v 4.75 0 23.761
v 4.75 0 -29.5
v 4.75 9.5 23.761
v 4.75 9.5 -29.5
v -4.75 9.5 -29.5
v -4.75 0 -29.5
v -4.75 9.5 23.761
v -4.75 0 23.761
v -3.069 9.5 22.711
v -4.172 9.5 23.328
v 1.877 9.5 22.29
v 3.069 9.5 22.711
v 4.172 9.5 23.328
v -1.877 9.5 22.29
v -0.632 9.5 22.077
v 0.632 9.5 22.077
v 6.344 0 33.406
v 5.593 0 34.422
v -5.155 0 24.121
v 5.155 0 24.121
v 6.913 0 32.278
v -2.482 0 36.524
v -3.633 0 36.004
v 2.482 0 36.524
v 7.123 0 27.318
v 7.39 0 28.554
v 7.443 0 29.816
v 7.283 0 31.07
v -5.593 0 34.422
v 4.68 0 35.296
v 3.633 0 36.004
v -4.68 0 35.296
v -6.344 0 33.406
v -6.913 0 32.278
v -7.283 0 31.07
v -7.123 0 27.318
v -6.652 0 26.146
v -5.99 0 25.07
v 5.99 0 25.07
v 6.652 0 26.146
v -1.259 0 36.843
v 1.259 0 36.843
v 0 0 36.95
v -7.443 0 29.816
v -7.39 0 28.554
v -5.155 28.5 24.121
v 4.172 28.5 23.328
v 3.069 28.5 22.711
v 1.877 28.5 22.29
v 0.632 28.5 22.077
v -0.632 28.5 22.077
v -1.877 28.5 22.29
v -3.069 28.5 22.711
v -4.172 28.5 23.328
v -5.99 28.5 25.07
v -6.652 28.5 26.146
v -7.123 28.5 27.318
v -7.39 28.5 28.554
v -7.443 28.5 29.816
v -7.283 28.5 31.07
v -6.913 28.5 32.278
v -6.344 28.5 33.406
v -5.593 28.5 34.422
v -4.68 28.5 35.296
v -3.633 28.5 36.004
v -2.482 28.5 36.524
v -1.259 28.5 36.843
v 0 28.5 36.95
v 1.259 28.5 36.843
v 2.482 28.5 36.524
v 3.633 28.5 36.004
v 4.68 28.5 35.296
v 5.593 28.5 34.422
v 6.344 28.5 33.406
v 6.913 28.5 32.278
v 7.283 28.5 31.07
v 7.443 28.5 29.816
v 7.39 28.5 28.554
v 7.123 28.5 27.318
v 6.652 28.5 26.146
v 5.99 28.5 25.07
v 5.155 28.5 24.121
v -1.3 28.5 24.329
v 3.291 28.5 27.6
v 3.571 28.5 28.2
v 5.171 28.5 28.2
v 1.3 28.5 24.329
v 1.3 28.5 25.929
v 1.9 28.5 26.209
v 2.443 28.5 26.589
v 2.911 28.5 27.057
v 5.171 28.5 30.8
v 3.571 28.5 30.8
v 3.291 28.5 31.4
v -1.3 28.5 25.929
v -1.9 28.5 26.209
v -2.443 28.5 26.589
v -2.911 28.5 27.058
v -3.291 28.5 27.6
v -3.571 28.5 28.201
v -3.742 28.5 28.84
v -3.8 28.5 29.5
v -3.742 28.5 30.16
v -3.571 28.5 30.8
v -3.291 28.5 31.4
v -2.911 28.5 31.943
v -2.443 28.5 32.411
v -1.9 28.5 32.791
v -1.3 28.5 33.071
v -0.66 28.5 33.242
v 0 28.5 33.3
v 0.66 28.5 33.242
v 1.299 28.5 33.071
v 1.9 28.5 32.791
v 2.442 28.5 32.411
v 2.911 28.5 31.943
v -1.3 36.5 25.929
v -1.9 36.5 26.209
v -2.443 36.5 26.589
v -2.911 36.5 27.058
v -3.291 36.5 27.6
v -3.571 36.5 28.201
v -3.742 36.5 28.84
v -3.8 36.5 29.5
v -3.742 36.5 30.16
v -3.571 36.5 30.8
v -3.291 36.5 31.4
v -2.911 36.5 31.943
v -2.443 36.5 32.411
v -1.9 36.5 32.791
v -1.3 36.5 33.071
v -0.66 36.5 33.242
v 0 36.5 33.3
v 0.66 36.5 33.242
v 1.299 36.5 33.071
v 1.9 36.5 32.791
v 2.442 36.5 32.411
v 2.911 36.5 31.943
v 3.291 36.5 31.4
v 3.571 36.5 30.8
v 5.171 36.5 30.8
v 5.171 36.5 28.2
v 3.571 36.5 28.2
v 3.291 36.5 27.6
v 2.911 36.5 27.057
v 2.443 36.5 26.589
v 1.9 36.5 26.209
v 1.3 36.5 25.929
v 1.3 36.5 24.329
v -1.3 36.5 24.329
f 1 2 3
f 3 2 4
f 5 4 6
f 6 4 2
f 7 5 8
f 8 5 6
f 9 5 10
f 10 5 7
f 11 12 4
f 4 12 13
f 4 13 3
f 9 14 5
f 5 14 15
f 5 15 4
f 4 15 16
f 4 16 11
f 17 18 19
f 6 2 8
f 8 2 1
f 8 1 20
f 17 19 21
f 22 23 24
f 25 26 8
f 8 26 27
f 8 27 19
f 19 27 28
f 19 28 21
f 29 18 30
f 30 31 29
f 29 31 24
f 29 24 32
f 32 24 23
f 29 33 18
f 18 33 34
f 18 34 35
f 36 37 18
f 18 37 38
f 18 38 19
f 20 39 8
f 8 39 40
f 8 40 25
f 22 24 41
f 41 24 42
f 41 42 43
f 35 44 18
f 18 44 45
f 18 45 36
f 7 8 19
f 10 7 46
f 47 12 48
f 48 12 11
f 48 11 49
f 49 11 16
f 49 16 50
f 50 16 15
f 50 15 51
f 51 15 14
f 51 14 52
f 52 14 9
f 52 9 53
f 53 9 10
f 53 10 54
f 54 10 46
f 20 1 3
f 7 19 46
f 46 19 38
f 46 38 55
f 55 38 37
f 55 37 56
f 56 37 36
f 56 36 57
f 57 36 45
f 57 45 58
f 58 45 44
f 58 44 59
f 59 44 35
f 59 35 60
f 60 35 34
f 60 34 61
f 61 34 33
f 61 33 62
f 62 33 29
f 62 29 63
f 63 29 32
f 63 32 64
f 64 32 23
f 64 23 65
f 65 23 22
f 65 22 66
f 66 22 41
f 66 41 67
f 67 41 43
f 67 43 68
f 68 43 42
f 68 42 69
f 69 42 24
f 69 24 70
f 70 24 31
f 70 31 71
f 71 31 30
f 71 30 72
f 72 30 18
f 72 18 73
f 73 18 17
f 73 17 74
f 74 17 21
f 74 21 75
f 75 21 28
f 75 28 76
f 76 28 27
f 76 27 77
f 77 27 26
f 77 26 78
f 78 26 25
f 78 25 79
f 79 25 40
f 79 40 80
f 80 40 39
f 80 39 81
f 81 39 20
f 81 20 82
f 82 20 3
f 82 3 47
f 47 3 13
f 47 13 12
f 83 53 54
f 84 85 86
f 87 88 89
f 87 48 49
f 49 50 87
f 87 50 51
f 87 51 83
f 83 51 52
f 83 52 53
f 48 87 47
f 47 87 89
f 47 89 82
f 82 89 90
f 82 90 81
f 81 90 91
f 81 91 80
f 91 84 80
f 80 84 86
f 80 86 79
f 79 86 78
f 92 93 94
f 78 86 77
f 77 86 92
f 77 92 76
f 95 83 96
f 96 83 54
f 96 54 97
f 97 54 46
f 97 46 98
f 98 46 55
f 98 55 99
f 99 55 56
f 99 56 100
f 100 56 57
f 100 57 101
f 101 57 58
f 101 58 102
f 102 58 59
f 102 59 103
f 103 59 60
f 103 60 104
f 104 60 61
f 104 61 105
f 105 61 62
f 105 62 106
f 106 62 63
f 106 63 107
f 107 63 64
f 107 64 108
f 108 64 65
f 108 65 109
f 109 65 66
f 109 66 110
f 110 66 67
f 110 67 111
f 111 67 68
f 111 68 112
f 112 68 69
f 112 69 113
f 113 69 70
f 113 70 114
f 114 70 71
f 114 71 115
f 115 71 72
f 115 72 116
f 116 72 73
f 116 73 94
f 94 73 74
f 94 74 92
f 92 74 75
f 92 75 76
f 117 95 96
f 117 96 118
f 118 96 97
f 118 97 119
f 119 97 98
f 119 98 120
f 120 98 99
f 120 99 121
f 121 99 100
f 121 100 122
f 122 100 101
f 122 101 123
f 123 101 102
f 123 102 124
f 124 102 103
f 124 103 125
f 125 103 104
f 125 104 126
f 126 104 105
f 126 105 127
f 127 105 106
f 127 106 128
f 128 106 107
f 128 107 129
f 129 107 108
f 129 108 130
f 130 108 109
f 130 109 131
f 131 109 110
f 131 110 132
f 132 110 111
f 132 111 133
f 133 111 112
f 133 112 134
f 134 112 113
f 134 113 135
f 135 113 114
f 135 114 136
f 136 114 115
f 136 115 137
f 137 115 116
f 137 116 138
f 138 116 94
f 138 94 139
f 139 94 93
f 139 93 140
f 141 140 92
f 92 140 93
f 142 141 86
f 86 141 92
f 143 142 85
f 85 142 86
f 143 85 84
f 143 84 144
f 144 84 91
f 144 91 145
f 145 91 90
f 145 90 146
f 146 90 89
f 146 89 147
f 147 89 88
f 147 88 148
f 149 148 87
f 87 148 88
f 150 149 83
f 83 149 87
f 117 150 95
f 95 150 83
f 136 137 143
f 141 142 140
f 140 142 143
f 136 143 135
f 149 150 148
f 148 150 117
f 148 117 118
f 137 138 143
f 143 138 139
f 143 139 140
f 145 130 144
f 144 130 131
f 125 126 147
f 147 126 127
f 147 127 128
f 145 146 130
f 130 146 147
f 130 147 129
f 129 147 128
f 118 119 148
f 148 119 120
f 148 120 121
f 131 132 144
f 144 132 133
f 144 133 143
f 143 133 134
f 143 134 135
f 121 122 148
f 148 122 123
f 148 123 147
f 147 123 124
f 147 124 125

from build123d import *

# Parameters (mm, degrees)
SKETCH1_W                = 9.5
SKETCH1_H                = 59
BOSS_EXTRUDE1_DEPTH      = 9.5
SKETCH2_R                = 7.45
BOSS_EXTRUDE2_DEPTH      = 19
BOSS_EXTRUDE2_DEPTH_BACK = 9.5
BOSS_EXTRUDE3_DEPTH      = 8


with BuildPart() as part:
    # Sketch1 → Boss-Extrude1 (new body)
    with BuildSketch(Plane(origin=(0, 0, 0), x_dir=(1, 0, 0), z_dir=(0, 1, 0))):
        Rectangle(SKETCH1_W, SKETCH1_H)
    extrude(amount=BOSS_EXTRUDE1_DEPTH)

    # Sketch2 → Boss-Extrude2 (add, two sides)
    with BuildSketch(Plane(origin=(0, 9.5, 0), x_dir=(1, 0, 0), z_dir=(0, 1, 0))) as boss_extrude2_sk:
        with Locations((0, -29.5)):
            Circle(SKETCH2_R)
    extrude(amount=BOSS_EXTRUDE2_DEPTH)
    extrude(boss_extrude2_sk.sketch, amount=-BOSS_EXTRUDE2_DEPTH_BACK)

    # Sketch3 → Boss-Extrude3 (add)
    with BuildSketch(Plane(origin=(0, 28.5, 0), x_dir=(1, 0, 0), z_dir=(0, 1, 0))):
        with BuildLine():
            Line((-1.3, -25.929285786), (-1.3, -24.329285786))
            Line((-1.3, -24.329285786), (1.3, -24.329285786))
            Line((1.3, -24.329285786), (1.3, -25.929285786))
            ThreePointArc((1.3, -25.929285786), (2.687005769, -26.812994231), (3.570714214, -28.2))
            Line((3.570714214, -28.2), (5.170714214, -28.2))
            Line((5.170714214, -28.2), (5.170714214, -30.8))
            Line((5.170714214, -30.8), (3.570714214, -30.8))
            ThreePointArc((3.570714214, -30.8), (-2.687005769, -32.187005769), (-1.3, -25.929285786))
        make_face()
    extrude(amount=BOSS_EXTRUDE3_DEPTH)


solid = part.part
